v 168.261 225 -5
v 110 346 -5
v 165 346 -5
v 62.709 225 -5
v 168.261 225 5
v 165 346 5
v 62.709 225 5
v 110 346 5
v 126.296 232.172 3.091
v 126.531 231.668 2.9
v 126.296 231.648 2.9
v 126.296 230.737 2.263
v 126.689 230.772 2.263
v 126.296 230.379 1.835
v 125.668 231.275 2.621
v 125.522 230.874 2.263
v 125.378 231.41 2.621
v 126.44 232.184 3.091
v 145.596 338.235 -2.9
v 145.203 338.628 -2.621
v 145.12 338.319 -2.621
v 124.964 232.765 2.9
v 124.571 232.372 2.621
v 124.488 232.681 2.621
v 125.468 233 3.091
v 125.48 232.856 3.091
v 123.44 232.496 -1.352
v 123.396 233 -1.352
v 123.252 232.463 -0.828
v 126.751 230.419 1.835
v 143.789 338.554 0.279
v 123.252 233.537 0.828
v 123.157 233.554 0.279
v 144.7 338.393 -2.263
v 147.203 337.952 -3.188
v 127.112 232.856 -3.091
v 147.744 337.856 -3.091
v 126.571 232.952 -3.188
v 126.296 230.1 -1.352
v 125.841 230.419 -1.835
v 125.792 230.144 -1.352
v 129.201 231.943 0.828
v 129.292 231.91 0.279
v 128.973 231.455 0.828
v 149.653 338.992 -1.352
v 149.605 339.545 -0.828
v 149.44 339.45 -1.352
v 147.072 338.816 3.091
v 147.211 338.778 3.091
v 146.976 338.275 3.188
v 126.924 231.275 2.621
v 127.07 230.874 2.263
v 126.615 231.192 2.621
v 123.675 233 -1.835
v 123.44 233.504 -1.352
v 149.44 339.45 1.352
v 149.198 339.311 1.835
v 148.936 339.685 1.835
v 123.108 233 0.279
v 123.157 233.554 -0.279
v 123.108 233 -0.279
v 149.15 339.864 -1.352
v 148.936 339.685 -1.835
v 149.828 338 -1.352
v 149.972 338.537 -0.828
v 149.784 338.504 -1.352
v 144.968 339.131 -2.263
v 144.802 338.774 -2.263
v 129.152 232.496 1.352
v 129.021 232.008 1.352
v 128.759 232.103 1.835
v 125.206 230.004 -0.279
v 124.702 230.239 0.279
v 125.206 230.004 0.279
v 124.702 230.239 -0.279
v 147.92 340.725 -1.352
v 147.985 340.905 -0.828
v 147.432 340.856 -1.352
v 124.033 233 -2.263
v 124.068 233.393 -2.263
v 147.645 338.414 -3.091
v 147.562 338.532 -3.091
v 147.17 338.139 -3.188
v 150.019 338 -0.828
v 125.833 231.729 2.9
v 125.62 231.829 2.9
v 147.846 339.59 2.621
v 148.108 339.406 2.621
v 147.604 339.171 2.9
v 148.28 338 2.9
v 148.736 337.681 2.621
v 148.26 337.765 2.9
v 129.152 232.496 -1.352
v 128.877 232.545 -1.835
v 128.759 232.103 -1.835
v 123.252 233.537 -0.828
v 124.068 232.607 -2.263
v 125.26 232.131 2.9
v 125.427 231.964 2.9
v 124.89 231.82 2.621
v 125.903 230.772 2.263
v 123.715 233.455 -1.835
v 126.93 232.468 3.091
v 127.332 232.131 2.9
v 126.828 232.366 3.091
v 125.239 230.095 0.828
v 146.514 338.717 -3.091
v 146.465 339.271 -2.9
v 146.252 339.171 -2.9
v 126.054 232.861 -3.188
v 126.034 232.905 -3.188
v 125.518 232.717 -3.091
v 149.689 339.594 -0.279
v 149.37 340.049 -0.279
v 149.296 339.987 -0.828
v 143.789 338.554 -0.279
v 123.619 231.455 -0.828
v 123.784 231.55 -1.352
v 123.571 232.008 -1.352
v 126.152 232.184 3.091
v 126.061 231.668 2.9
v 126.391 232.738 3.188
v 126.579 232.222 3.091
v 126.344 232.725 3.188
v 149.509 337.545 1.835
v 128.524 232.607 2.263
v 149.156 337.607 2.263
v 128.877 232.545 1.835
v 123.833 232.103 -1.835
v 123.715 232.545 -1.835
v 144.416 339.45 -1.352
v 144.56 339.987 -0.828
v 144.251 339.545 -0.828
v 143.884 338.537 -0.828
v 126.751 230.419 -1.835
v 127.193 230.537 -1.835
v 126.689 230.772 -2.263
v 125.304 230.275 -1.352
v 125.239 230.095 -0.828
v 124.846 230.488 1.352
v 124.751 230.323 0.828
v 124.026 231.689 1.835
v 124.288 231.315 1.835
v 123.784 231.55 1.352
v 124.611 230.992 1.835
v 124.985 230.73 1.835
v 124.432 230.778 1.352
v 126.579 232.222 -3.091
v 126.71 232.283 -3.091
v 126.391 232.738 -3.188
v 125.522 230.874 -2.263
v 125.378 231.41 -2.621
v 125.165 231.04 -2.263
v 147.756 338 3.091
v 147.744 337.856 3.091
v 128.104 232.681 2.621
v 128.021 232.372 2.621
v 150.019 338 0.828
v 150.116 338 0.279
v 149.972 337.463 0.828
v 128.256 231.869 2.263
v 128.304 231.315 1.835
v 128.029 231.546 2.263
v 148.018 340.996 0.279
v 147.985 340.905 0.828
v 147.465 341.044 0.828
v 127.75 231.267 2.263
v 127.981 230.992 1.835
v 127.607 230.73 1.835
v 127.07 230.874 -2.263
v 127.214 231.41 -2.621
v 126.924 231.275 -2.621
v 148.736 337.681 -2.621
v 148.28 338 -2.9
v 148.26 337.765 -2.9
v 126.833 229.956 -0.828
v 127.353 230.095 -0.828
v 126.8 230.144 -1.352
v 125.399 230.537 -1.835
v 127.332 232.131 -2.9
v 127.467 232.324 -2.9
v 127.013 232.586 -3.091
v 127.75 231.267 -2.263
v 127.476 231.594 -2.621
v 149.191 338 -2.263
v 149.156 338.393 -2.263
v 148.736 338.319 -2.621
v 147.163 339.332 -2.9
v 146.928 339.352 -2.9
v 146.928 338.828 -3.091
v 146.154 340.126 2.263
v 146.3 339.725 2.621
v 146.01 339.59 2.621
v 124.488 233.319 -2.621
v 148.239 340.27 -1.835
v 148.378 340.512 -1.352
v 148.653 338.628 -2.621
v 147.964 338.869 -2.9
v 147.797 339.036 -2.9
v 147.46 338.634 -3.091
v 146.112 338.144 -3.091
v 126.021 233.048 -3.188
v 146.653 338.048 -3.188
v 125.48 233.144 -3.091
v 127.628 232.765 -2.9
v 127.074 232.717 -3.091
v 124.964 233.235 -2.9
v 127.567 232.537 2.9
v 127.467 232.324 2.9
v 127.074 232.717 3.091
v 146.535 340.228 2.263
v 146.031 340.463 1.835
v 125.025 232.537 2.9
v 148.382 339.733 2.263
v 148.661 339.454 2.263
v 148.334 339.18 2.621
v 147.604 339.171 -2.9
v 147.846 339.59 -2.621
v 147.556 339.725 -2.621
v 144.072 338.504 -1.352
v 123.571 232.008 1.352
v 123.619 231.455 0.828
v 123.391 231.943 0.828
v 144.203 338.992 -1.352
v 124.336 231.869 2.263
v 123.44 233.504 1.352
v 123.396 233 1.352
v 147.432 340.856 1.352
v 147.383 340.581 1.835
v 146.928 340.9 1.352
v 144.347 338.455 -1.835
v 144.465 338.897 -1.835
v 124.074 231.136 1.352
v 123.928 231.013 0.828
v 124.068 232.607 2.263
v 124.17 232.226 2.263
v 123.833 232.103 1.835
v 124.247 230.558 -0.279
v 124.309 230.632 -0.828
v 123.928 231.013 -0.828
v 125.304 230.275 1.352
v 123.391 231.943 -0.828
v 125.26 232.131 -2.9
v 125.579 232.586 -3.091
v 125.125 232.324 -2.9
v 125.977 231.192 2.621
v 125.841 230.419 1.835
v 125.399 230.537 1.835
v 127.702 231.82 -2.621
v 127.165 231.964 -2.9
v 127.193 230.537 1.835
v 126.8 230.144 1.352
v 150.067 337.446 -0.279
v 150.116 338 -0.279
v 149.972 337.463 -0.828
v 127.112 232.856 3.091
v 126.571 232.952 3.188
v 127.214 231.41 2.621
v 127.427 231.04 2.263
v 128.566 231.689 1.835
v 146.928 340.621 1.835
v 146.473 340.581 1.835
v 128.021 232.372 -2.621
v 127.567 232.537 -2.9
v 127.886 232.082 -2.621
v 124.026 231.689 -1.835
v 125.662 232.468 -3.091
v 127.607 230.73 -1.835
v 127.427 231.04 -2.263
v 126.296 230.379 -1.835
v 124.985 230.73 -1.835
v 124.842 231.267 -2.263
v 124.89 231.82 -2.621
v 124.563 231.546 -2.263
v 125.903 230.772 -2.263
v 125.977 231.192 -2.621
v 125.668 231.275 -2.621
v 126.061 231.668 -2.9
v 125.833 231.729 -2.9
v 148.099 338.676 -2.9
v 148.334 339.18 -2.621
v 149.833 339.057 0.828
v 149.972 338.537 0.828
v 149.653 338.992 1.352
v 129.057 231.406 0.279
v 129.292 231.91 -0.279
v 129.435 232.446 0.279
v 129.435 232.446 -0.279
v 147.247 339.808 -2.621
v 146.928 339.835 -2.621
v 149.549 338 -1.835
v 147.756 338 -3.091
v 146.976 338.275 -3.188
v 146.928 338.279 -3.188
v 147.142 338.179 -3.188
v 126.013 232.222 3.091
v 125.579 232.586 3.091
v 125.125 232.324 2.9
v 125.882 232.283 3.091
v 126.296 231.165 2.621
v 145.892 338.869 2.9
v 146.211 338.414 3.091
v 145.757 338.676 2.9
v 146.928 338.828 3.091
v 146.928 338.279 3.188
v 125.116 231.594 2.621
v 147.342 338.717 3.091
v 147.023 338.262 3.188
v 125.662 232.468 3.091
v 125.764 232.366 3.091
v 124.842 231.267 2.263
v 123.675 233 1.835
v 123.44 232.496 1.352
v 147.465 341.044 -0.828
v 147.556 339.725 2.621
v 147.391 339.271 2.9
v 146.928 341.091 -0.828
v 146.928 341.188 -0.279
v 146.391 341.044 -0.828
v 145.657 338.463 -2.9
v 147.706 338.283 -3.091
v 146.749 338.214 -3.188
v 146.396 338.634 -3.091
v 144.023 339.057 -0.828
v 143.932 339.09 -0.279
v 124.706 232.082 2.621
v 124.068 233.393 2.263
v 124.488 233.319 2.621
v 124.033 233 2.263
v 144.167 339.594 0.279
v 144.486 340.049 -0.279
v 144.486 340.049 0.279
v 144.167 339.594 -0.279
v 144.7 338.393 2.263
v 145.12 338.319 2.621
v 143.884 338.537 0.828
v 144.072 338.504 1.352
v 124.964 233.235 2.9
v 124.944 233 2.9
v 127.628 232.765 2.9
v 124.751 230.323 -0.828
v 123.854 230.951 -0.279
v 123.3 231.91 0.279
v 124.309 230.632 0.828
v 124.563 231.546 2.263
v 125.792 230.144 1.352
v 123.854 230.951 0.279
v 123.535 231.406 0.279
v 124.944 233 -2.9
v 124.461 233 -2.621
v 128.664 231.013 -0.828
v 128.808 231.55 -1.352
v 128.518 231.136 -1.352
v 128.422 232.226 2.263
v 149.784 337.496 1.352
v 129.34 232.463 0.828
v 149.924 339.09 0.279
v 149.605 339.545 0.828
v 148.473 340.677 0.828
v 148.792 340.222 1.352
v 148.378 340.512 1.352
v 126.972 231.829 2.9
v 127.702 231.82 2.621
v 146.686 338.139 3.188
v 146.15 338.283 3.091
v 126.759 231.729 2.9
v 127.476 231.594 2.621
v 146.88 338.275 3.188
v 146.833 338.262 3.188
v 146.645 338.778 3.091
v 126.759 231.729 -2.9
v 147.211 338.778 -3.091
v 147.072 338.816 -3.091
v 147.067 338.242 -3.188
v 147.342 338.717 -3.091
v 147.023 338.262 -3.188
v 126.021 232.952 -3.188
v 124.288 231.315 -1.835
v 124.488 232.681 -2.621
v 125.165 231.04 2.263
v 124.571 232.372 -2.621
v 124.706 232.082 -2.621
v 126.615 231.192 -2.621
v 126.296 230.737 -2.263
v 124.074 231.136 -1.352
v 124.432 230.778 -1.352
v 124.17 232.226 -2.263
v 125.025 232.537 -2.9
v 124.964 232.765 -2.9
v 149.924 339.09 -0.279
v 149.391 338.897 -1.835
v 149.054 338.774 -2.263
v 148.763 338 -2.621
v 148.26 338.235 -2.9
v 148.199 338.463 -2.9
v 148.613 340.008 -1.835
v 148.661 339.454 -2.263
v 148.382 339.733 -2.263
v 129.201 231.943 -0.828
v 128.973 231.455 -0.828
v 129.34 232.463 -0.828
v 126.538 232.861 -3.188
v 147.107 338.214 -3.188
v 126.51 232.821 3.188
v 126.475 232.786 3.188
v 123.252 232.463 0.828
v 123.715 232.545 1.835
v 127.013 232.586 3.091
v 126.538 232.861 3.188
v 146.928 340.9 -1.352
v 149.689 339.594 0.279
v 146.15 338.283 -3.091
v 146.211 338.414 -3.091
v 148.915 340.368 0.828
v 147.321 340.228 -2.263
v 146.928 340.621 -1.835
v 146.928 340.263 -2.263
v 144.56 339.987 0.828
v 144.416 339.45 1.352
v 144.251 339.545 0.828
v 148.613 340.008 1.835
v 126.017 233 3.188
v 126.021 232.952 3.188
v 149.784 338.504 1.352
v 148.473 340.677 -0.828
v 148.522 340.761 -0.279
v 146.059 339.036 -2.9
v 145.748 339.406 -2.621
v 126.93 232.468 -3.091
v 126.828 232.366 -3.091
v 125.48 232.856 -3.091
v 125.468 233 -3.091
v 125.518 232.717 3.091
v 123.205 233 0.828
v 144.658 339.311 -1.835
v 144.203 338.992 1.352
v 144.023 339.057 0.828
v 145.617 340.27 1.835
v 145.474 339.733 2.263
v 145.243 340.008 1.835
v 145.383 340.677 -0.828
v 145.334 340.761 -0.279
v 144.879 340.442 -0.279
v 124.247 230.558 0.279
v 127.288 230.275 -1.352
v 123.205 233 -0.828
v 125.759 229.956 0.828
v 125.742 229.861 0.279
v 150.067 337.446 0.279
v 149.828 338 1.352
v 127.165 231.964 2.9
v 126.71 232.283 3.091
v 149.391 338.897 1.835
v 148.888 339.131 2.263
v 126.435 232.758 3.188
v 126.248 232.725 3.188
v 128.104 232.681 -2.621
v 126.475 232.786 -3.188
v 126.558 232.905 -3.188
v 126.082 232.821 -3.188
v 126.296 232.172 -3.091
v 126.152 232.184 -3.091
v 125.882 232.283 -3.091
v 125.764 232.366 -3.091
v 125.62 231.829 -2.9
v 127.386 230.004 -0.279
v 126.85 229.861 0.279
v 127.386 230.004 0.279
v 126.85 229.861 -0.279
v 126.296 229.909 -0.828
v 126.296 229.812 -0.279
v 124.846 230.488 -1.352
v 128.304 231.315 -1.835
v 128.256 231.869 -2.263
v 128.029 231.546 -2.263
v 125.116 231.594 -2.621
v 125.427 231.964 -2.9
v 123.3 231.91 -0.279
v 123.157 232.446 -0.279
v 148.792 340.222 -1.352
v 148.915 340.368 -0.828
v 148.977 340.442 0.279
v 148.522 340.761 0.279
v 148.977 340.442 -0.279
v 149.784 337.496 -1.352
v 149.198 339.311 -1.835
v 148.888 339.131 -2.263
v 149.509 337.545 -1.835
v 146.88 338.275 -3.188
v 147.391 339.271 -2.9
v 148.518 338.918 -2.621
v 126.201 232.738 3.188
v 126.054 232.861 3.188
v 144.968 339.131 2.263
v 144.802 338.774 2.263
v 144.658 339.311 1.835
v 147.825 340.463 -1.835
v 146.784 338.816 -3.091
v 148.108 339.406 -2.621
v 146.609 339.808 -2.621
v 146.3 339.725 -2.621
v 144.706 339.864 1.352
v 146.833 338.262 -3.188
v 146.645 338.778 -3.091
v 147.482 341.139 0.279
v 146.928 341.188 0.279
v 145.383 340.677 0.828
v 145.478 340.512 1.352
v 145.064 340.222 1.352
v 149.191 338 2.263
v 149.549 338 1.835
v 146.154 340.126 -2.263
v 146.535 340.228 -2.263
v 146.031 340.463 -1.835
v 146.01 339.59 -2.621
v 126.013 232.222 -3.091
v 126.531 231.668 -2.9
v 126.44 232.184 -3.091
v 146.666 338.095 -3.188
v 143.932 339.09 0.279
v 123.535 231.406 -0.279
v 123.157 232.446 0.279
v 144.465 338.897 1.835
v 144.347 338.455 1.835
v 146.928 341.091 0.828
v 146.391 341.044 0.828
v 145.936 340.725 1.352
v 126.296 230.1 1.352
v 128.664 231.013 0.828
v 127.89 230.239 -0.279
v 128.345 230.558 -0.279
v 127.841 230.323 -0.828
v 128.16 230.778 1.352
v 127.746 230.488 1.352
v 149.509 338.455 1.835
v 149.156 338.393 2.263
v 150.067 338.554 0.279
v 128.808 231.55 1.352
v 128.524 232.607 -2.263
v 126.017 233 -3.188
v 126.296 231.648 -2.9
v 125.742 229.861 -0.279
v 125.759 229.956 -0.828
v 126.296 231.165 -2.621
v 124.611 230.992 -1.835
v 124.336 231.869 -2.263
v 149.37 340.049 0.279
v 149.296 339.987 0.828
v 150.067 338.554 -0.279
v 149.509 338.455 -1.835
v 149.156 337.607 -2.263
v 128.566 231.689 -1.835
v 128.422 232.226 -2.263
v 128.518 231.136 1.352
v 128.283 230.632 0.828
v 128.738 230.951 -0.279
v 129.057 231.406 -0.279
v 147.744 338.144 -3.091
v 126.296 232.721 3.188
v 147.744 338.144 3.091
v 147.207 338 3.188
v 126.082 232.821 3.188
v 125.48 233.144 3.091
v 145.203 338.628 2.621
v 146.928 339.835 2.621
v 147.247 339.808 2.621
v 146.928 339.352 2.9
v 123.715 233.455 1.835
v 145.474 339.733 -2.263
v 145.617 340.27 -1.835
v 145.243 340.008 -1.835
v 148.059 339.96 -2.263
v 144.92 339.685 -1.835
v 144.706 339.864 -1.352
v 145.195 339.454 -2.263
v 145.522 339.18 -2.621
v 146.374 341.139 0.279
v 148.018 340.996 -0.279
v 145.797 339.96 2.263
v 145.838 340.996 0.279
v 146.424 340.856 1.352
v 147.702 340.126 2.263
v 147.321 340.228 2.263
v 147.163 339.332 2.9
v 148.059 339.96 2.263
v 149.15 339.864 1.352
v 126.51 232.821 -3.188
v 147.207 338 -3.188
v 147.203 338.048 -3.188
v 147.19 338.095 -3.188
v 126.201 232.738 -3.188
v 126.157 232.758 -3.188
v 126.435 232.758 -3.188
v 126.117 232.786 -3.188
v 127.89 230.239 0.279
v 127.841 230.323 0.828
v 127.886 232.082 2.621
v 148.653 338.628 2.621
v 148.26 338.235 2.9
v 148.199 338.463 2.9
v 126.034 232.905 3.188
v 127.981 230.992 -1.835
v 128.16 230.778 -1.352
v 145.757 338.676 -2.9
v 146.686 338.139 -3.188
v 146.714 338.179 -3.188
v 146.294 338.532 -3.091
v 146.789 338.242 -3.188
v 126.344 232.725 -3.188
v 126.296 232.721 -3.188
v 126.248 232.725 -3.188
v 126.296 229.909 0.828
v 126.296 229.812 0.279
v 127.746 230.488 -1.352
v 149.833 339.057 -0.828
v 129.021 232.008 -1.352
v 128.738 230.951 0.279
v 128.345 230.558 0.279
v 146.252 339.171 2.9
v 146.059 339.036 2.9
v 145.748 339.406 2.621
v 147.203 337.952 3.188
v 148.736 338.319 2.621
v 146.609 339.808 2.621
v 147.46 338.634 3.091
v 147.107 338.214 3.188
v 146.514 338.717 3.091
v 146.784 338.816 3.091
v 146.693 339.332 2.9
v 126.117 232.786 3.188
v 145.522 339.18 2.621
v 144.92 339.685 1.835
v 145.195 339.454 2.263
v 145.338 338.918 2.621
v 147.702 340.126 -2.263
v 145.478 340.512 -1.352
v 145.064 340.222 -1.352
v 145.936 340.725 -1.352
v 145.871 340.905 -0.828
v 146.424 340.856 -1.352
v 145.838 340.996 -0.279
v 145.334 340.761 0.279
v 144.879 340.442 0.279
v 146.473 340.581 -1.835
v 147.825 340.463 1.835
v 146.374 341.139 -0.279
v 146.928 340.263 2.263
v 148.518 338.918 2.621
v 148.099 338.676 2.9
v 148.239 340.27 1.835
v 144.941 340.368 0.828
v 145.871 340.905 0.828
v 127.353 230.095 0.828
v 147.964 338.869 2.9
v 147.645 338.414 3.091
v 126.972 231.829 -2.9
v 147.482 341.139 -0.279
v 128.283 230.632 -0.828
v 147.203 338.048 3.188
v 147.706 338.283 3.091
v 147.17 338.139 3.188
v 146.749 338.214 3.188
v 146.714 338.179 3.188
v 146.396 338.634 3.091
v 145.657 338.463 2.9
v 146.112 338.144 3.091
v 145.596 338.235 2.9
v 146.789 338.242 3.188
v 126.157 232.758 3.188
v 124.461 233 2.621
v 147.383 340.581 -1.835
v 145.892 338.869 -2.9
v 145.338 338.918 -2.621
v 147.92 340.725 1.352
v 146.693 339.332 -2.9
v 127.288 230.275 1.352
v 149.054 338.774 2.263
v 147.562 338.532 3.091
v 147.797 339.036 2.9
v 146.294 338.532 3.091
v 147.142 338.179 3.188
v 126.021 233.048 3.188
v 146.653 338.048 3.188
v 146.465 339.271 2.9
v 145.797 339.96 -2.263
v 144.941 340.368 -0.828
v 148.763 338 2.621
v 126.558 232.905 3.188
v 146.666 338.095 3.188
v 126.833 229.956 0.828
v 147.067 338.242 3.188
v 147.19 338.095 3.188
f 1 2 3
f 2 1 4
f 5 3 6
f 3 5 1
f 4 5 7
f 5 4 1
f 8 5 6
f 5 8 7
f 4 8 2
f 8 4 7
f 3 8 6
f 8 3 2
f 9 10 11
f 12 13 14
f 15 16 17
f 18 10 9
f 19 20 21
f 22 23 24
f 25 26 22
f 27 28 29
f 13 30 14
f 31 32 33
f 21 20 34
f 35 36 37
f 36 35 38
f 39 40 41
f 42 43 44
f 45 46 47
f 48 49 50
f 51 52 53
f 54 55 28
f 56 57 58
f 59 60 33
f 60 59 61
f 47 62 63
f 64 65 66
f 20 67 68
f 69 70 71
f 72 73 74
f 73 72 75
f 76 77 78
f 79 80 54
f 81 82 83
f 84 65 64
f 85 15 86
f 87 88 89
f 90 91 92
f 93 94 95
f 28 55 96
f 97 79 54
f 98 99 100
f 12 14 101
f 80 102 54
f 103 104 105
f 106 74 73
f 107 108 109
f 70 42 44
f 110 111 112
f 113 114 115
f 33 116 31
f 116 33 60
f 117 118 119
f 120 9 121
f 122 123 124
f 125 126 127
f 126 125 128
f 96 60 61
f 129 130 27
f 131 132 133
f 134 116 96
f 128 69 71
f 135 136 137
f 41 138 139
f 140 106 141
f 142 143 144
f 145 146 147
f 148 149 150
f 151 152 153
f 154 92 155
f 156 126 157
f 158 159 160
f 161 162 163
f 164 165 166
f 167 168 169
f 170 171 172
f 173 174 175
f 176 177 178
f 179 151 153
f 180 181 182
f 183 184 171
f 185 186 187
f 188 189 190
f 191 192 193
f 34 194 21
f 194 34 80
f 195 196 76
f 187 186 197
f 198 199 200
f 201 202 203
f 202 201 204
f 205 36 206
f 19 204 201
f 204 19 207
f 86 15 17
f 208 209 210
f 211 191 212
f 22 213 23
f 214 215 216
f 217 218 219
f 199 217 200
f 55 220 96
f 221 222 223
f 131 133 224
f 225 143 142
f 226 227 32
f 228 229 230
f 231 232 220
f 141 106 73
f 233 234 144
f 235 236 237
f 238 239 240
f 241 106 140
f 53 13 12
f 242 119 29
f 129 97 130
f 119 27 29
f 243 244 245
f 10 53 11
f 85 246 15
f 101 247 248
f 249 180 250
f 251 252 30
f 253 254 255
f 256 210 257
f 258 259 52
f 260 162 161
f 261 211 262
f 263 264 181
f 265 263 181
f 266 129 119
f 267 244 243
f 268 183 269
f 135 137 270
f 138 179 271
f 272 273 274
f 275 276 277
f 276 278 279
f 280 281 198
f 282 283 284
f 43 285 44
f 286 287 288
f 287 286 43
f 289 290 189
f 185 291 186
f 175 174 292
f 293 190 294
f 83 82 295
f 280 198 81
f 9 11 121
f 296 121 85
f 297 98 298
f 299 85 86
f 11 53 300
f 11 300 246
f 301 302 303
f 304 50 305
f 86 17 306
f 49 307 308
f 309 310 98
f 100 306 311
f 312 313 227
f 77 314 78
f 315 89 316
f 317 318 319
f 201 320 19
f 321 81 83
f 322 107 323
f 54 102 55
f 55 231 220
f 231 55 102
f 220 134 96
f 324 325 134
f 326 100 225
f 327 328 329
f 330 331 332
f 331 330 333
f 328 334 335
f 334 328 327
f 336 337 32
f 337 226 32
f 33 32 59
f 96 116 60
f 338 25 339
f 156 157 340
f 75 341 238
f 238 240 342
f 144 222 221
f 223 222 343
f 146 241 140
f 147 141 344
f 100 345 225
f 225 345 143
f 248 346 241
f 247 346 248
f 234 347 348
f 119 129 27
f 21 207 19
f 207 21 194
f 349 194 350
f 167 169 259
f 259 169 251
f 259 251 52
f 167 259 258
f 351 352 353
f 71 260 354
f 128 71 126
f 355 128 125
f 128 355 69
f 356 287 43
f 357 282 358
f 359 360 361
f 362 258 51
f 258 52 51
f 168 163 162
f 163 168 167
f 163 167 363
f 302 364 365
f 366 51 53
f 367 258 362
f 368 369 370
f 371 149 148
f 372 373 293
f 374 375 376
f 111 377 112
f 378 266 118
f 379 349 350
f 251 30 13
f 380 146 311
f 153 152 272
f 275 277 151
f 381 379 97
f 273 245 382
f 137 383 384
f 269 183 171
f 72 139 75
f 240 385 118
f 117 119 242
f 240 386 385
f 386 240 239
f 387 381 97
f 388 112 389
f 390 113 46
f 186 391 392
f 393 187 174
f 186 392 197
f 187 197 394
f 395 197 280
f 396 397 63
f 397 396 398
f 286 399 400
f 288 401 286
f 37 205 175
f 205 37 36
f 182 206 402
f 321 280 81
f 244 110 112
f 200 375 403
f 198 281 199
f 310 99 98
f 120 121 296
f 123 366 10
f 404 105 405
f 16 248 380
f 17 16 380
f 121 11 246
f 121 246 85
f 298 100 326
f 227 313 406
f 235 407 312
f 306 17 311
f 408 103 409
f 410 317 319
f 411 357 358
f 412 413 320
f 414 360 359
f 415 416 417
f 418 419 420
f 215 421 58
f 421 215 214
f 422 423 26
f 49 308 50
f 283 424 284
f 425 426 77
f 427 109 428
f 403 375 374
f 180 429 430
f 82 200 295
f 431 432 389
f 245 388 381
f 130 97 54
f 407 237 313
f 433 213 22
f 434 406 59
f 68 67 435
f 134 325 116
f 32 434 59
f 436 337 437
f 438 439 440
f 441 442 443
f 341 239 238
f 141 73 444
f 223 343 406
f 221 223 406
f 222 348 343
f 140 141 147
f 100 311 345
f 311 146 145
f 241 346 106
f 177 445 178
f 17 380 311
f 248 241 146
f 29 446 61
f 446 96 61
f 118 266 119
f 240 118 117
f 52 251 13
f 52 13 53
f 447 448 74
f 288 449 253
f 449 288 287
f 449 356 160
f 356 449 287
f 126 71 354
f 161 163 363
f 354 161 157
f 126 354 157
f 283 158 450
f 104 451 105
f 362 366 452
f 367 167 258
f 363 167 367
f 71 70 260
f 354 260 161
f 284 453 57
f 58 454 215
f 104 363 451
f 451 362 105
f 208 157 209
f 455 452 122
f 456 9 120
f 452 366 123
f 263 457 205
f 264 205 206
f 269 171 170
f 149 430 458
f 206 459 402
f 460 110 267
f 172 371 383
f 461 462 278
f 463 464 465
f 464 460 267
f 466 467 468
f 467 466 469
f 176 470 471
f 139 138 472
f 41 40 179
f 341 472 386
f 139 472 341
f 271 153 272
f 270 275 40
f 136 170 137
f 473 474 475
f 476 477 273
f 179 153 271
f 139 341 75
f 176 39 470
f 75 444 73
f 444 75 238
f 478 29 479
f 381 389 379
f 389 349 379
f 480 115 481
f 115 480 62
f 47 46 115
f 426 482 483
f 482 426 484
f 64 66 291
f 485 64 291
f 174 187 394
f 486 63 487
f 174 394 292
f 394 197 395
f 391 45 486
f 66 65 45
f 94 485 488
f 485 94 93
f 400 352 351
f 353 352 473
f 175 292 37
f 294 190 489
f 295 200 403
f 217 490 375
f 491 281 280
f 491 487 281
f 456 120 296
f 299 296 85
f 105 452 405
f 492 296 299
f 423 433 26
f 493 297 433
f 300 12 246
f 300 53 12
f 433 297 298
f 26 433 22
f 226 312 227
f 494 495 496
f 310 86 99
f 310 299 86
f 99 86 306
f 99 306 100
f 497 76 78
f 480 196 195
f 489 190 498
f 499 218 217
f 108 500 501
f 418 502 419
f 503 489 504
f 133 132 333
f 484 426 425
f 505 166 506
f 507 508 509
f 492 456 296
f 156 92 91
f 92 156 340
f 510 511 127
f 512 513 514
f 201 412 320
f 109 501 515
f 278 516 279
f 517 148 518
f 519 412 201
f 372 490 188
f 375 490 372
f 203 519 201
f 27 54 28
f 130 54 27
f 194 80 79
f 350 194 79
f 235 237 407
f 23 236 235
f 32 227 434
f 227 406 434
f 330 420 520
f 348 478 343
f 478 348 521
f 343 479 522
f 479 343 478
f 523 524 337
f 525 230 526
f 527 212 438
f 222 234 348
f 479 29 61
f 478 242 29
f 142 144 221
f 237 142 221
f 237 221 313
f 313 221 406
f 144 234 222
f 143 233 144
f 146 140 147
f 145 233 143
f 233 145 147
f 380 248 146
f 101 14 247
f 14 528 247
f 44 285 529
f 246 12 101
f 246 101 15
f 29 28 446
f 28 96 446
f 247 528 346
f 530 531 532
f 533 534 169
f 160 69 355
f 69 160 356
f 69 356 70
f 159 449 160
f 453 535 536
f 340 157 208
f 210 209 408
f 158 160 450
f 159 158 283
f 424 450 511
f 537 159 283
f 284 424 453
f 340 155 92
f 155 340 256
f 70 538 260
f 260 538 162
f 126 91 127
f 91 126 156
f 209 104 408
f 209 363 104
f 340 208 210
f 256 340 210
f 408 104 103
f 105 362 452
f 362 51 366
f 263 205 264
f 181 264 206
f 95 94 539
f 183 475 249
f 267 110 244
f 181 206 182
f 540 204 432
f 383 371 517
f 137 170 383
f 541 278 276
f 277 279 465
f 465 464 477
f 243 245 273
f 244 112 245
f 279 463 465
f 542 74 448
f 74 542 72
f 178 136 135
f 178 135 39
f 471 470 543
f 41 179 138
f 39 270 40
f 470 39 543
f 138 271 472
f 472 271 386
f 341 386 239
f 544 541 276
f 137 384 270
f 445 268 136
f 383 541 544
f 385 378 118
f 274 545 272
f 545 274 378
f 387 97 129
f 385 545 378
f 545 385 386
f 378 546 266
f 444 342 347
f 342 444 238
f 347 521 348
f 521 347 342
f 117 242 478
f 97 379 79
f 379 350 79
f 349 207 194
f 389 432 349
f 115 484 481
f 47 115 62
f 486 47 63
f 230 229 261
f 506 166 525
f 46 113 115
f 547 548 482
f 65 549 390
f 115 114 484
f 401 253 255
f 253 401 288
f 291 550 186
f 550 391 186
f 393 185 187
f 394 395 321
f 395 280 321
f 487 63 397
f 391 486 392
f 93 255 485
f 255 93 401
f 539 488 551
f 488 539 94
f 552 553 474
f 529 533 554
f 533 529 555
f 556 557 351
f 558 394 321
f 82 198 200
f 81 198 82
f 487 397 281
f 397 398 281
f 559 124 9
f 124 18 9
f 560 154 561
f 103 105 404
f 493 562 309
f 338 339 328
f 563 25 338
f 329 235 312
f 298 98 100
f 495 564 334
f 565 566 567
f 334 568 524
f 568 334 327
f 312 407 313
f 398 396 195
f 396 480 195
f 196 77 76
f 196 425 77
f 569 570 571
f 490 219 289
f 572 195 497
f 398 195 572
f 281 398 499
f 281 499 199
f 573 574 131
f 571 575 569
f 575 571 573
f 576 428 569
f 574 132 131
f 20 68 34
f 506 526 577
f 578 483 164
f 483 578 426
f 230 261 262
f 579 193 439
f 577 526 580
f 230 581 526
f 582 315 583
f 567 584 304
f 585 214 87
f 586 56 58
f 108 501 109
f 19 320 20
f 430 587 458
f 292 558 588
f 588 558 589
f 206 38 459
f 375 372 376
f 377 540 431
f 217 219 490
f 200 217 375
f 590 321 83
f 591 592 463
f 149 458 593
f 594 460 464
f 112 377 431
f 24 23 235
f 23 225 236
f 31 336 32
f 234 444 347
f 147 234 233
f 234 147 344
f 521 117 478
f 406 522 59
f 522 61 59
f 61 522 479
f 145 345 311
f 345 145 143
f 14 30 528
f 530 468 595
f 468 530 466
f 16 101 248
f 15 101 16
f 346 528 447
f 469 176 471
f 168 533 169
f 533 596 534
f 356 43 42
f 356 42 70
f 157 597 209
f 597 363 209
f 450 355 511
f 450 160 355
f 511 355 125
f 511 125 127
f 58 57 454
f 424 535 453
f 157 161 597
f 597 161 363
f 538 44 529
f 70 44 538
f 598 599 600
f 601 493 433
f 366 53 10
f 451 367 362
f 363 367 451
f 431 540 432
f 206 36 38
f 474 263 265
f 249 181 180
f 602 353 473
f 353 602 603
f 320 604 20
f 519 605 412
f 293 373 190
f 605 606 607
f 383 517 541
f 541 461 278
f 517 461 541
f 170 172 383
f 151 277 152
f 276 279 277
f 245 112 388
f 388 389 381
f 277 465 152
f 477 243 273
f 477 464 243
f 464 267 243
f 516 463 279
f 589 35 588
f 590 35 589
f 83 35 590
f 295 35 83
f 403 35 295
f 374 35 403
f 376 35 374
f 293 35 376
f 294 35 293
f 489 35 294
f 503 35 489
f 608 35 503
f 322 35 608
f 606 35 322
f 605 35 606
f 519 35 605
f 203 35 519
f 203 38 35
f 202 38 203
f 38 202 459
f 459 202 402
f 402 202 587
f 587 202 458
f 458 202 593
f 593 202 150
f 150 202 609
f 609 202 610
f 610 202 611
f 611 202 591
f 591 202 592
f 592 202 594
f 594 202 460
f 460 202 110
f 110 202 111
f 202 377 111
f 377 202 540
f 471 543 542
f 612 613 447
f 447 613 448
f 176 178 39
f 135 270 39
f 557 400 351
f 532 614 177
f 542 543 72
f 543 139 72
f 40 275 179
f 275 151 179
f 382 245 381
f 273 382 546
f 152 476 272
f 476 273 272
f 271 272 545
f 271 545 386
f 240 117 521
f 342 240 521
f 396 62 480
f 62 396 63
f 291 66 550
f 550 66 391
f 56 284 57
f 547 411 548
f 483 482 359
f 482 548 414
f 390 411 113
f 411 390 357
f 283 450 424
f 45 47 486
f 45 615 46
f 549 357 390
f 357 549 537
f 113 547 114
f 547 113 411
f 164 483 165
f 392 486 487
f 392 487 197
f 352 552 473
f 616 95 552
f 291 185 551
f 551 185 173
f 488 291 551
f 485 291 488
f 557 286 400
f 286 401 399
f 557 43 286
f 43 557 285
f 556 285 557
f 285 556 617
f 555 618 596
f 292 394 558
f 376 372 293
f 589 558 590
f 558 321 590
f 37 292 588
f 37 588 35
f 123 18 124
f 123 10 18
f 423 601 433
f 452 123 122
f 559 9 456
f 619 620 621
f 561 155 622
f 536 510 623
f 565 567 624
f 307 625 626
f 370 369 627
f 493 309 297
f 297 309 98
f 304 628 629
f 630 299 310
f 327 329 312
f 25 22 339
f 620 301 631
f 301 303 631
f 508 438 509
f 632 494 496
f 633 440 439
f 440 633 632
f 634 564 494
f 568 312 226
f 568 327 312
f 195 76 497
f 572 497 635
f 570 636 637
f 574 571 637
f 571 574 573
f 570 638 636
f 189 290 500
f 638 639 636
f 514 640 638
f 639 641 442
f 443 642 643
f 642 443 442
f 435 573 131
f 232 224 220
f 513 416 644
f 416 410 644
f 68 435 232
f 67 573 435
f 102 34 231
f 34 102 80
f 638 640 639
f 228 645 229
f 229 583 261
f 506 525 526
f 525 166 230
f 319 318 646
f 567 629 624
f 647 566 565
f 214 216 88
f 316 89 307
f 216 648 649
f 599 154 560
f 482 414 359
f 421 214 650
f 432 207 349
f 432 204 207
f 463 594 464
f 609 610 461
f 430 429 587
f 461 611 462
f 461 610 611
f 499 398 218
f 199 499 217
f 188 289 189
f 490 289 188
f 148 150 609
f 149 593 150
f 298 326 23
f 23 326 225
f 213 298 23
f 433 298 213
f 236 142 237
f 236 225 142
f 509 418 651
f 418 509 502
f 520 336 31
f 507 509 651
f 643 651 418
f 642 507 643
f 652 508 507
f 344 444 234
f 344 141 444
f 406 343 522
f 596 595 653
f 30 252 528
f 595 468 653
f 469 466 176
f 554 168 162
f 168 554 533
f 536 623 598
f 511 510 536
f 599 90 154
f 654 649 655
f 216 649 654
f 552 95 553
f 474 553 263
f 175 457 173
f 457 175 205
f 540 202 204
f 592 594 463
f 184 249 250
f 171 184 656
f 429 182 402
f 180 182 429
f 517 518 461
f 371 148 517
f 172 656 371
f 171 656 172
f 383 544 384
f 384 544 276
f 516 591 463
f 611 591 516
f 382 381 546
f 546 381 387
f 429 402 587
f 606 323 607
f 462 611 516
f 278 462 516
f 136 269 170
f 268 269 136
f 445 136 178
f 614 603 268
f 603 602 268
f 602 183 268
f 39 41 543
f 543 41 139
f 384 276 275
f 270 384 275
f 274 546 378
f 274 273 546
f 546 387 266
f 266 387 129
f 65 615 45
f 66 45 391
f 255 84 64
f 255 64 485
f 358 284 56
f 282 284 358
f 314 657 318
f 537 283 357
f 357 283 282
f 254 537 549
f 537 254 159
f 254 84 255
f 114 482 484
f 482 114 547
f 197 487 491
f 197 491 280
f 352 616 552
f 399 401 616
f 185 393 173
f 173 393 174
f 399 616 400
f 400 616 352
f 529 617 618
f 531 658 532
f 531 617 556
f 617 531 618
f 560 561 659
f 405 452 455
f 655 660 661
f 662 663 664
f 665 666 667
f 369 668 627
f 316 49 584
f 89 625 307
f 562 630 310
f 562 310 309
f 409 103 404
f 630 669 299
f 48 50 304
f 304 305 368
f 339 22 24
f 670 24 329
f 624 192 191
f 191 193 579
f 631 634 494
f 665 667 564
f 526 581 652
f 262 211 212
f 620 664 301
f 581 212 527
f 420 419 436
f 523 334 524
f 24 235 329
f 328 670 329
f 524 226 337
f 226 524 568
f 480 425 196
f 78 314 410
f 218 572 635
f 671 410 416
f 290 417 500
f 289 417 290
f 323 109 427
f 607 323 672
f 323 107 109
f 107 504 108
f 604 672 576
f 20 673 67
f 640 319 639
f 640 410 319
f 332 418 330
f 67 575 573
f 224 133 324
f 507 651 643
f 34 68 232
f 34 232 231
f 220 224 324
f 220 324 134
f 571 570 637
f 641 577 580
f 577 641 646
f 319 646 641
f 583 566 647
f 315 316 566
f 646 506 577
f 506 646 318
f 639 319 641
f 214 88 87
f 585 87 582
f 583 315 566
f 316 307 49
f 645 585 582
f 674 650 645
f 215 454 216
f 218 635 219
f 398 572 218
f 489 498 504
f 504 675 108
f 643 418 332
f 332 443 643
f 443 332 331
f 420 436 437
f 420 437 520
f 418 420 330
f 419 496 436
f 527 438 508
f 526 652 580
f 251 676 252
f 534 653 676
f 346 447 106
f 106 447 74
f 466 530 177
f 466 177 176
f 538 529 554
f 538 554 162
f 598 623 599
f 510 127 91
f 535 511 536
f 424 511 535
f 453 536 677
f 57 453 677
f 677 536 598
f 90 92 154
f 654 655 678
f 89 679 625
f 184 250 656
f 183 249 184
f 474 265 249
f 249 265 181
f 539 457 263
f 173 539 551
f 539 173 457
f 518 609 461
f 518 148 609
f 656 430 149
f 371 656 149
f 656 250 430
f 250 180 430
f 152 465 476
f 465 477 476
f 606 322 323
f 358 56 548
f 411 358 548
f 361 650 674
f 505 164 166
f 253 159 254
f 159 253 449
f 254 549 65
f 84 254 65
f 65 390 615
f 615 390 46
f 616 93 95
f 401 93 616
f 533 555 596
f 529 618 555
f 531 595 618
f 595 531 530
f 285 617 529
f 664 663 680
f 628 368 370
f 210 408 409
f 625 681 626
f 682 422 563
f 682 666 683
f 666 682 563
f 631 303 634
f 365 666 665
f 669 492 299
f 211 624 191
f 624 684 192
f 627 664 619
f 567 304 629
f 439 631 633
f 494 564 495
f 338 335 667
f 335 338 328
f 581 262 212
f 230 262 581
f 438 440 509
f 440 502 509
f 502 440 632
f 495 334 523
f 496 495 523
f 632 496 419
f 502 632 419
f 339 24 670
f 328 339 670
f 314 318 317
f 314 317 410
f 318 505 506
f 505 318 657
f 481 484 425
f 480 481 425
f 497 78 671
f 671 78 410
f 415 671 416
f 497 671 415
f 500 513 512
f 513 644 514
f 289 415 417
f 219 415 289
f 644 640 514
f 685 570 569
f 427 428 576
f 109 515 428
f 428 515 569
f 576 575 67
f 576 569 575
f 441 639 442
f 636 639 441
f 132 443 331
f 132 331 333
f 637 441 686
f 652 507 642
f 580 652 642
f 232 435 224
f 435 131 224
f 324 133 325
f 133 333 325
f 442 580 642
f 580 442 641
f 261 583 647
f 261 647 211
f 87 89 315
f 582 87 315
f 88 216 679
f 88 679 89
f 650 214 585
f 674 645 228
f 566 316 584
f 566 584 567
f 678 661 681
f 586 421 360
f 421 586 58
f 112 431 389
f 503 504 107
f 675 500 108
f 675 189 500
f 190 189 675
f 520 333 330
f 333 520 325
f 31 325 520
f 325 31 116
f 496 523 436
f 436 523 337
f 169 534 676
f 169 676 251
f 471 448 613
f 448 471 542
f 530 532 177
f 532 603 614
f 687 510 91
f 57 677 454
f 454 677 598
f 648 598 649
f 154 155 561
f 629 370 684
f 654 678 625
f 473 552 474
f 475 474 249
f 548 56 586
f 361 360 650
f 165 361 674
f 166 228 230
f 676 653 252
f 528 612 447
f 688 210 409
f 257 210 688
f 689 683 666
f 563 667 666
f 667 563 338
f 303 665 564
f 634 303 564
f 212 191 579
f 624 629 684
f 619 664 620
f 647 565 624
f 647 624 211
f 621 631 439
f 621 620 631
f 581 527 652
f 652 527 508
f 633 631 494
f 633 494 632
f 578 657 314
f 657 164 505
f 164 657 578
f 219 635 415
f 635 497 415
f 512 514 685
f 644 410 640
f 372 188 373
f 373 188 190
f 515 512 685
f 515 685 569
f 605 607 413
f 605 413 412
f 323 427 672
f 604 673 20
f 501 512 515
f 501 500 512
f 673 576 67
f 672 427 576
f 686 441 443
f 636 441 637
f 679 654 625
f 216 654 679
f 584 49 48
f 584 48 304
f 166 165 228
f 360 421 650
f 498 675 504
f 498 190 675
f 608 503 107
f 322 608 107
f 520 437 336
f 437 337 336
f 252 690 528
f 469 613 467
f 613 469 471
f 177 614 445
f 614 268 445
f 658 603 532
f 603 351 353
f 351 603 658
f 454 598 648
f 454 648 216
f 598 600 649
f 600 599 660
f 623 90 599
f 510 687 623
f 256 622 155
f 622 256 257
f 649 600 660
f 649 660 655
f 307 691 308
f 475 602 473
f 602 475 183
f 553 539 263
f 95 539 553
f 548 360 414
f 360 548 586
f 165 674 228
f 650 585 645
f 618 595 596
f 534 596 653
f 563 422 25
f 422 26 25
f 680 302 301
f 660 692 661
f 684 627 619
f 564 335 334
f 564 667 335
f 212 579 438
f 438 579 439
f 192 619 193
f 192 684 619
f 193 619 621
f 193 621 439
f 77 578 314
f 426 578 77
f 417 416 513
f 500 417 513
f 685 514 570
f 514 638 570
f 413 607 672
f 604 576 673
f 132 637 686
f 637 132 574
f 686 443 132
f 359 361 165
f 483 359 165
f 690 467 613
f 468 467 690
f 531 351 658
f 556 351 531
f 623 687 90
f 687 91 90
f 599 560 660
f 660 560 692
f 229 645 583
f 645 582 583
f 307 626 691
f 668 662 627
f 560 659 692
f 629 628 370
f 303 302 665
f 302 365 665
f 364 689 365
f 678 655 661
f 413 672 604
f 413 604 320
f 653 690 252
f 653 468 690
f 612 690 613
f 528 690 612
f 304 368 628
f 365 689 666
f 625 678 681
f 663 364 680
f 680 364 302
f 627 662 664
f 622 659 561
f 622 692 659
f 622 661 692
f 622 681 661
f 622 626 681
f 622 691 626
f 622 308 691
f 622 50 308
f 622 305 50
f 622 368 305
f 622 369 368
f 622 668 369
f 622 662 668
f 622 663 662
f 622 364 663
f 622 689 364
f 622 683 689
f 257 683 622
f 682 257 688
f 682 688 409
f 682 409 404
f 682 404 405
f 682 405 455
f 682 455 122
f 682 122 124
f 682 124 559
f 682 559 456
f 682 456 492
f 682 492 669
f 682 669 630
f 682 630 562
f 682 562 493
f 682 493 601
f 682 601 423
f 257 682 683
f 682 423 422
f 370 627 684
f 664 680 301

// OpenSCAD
$fn=64;
module raw(){linear_extrude(height=10,center=true) polygon(points=[[62.70889,225.00000],[168.26146,225.00000],[165.00000,346.00000],[110.00000,346.00000]]);}
module spar(){hull(){translate([126.2960,233.0000,0]) sphere(d=6.4,$fn=36); translate([146.9280,338.0000,0]) sphere(d=6.4,$fn=36);}}
module wing(){difference(){raw(); spar(); }}
wing();
